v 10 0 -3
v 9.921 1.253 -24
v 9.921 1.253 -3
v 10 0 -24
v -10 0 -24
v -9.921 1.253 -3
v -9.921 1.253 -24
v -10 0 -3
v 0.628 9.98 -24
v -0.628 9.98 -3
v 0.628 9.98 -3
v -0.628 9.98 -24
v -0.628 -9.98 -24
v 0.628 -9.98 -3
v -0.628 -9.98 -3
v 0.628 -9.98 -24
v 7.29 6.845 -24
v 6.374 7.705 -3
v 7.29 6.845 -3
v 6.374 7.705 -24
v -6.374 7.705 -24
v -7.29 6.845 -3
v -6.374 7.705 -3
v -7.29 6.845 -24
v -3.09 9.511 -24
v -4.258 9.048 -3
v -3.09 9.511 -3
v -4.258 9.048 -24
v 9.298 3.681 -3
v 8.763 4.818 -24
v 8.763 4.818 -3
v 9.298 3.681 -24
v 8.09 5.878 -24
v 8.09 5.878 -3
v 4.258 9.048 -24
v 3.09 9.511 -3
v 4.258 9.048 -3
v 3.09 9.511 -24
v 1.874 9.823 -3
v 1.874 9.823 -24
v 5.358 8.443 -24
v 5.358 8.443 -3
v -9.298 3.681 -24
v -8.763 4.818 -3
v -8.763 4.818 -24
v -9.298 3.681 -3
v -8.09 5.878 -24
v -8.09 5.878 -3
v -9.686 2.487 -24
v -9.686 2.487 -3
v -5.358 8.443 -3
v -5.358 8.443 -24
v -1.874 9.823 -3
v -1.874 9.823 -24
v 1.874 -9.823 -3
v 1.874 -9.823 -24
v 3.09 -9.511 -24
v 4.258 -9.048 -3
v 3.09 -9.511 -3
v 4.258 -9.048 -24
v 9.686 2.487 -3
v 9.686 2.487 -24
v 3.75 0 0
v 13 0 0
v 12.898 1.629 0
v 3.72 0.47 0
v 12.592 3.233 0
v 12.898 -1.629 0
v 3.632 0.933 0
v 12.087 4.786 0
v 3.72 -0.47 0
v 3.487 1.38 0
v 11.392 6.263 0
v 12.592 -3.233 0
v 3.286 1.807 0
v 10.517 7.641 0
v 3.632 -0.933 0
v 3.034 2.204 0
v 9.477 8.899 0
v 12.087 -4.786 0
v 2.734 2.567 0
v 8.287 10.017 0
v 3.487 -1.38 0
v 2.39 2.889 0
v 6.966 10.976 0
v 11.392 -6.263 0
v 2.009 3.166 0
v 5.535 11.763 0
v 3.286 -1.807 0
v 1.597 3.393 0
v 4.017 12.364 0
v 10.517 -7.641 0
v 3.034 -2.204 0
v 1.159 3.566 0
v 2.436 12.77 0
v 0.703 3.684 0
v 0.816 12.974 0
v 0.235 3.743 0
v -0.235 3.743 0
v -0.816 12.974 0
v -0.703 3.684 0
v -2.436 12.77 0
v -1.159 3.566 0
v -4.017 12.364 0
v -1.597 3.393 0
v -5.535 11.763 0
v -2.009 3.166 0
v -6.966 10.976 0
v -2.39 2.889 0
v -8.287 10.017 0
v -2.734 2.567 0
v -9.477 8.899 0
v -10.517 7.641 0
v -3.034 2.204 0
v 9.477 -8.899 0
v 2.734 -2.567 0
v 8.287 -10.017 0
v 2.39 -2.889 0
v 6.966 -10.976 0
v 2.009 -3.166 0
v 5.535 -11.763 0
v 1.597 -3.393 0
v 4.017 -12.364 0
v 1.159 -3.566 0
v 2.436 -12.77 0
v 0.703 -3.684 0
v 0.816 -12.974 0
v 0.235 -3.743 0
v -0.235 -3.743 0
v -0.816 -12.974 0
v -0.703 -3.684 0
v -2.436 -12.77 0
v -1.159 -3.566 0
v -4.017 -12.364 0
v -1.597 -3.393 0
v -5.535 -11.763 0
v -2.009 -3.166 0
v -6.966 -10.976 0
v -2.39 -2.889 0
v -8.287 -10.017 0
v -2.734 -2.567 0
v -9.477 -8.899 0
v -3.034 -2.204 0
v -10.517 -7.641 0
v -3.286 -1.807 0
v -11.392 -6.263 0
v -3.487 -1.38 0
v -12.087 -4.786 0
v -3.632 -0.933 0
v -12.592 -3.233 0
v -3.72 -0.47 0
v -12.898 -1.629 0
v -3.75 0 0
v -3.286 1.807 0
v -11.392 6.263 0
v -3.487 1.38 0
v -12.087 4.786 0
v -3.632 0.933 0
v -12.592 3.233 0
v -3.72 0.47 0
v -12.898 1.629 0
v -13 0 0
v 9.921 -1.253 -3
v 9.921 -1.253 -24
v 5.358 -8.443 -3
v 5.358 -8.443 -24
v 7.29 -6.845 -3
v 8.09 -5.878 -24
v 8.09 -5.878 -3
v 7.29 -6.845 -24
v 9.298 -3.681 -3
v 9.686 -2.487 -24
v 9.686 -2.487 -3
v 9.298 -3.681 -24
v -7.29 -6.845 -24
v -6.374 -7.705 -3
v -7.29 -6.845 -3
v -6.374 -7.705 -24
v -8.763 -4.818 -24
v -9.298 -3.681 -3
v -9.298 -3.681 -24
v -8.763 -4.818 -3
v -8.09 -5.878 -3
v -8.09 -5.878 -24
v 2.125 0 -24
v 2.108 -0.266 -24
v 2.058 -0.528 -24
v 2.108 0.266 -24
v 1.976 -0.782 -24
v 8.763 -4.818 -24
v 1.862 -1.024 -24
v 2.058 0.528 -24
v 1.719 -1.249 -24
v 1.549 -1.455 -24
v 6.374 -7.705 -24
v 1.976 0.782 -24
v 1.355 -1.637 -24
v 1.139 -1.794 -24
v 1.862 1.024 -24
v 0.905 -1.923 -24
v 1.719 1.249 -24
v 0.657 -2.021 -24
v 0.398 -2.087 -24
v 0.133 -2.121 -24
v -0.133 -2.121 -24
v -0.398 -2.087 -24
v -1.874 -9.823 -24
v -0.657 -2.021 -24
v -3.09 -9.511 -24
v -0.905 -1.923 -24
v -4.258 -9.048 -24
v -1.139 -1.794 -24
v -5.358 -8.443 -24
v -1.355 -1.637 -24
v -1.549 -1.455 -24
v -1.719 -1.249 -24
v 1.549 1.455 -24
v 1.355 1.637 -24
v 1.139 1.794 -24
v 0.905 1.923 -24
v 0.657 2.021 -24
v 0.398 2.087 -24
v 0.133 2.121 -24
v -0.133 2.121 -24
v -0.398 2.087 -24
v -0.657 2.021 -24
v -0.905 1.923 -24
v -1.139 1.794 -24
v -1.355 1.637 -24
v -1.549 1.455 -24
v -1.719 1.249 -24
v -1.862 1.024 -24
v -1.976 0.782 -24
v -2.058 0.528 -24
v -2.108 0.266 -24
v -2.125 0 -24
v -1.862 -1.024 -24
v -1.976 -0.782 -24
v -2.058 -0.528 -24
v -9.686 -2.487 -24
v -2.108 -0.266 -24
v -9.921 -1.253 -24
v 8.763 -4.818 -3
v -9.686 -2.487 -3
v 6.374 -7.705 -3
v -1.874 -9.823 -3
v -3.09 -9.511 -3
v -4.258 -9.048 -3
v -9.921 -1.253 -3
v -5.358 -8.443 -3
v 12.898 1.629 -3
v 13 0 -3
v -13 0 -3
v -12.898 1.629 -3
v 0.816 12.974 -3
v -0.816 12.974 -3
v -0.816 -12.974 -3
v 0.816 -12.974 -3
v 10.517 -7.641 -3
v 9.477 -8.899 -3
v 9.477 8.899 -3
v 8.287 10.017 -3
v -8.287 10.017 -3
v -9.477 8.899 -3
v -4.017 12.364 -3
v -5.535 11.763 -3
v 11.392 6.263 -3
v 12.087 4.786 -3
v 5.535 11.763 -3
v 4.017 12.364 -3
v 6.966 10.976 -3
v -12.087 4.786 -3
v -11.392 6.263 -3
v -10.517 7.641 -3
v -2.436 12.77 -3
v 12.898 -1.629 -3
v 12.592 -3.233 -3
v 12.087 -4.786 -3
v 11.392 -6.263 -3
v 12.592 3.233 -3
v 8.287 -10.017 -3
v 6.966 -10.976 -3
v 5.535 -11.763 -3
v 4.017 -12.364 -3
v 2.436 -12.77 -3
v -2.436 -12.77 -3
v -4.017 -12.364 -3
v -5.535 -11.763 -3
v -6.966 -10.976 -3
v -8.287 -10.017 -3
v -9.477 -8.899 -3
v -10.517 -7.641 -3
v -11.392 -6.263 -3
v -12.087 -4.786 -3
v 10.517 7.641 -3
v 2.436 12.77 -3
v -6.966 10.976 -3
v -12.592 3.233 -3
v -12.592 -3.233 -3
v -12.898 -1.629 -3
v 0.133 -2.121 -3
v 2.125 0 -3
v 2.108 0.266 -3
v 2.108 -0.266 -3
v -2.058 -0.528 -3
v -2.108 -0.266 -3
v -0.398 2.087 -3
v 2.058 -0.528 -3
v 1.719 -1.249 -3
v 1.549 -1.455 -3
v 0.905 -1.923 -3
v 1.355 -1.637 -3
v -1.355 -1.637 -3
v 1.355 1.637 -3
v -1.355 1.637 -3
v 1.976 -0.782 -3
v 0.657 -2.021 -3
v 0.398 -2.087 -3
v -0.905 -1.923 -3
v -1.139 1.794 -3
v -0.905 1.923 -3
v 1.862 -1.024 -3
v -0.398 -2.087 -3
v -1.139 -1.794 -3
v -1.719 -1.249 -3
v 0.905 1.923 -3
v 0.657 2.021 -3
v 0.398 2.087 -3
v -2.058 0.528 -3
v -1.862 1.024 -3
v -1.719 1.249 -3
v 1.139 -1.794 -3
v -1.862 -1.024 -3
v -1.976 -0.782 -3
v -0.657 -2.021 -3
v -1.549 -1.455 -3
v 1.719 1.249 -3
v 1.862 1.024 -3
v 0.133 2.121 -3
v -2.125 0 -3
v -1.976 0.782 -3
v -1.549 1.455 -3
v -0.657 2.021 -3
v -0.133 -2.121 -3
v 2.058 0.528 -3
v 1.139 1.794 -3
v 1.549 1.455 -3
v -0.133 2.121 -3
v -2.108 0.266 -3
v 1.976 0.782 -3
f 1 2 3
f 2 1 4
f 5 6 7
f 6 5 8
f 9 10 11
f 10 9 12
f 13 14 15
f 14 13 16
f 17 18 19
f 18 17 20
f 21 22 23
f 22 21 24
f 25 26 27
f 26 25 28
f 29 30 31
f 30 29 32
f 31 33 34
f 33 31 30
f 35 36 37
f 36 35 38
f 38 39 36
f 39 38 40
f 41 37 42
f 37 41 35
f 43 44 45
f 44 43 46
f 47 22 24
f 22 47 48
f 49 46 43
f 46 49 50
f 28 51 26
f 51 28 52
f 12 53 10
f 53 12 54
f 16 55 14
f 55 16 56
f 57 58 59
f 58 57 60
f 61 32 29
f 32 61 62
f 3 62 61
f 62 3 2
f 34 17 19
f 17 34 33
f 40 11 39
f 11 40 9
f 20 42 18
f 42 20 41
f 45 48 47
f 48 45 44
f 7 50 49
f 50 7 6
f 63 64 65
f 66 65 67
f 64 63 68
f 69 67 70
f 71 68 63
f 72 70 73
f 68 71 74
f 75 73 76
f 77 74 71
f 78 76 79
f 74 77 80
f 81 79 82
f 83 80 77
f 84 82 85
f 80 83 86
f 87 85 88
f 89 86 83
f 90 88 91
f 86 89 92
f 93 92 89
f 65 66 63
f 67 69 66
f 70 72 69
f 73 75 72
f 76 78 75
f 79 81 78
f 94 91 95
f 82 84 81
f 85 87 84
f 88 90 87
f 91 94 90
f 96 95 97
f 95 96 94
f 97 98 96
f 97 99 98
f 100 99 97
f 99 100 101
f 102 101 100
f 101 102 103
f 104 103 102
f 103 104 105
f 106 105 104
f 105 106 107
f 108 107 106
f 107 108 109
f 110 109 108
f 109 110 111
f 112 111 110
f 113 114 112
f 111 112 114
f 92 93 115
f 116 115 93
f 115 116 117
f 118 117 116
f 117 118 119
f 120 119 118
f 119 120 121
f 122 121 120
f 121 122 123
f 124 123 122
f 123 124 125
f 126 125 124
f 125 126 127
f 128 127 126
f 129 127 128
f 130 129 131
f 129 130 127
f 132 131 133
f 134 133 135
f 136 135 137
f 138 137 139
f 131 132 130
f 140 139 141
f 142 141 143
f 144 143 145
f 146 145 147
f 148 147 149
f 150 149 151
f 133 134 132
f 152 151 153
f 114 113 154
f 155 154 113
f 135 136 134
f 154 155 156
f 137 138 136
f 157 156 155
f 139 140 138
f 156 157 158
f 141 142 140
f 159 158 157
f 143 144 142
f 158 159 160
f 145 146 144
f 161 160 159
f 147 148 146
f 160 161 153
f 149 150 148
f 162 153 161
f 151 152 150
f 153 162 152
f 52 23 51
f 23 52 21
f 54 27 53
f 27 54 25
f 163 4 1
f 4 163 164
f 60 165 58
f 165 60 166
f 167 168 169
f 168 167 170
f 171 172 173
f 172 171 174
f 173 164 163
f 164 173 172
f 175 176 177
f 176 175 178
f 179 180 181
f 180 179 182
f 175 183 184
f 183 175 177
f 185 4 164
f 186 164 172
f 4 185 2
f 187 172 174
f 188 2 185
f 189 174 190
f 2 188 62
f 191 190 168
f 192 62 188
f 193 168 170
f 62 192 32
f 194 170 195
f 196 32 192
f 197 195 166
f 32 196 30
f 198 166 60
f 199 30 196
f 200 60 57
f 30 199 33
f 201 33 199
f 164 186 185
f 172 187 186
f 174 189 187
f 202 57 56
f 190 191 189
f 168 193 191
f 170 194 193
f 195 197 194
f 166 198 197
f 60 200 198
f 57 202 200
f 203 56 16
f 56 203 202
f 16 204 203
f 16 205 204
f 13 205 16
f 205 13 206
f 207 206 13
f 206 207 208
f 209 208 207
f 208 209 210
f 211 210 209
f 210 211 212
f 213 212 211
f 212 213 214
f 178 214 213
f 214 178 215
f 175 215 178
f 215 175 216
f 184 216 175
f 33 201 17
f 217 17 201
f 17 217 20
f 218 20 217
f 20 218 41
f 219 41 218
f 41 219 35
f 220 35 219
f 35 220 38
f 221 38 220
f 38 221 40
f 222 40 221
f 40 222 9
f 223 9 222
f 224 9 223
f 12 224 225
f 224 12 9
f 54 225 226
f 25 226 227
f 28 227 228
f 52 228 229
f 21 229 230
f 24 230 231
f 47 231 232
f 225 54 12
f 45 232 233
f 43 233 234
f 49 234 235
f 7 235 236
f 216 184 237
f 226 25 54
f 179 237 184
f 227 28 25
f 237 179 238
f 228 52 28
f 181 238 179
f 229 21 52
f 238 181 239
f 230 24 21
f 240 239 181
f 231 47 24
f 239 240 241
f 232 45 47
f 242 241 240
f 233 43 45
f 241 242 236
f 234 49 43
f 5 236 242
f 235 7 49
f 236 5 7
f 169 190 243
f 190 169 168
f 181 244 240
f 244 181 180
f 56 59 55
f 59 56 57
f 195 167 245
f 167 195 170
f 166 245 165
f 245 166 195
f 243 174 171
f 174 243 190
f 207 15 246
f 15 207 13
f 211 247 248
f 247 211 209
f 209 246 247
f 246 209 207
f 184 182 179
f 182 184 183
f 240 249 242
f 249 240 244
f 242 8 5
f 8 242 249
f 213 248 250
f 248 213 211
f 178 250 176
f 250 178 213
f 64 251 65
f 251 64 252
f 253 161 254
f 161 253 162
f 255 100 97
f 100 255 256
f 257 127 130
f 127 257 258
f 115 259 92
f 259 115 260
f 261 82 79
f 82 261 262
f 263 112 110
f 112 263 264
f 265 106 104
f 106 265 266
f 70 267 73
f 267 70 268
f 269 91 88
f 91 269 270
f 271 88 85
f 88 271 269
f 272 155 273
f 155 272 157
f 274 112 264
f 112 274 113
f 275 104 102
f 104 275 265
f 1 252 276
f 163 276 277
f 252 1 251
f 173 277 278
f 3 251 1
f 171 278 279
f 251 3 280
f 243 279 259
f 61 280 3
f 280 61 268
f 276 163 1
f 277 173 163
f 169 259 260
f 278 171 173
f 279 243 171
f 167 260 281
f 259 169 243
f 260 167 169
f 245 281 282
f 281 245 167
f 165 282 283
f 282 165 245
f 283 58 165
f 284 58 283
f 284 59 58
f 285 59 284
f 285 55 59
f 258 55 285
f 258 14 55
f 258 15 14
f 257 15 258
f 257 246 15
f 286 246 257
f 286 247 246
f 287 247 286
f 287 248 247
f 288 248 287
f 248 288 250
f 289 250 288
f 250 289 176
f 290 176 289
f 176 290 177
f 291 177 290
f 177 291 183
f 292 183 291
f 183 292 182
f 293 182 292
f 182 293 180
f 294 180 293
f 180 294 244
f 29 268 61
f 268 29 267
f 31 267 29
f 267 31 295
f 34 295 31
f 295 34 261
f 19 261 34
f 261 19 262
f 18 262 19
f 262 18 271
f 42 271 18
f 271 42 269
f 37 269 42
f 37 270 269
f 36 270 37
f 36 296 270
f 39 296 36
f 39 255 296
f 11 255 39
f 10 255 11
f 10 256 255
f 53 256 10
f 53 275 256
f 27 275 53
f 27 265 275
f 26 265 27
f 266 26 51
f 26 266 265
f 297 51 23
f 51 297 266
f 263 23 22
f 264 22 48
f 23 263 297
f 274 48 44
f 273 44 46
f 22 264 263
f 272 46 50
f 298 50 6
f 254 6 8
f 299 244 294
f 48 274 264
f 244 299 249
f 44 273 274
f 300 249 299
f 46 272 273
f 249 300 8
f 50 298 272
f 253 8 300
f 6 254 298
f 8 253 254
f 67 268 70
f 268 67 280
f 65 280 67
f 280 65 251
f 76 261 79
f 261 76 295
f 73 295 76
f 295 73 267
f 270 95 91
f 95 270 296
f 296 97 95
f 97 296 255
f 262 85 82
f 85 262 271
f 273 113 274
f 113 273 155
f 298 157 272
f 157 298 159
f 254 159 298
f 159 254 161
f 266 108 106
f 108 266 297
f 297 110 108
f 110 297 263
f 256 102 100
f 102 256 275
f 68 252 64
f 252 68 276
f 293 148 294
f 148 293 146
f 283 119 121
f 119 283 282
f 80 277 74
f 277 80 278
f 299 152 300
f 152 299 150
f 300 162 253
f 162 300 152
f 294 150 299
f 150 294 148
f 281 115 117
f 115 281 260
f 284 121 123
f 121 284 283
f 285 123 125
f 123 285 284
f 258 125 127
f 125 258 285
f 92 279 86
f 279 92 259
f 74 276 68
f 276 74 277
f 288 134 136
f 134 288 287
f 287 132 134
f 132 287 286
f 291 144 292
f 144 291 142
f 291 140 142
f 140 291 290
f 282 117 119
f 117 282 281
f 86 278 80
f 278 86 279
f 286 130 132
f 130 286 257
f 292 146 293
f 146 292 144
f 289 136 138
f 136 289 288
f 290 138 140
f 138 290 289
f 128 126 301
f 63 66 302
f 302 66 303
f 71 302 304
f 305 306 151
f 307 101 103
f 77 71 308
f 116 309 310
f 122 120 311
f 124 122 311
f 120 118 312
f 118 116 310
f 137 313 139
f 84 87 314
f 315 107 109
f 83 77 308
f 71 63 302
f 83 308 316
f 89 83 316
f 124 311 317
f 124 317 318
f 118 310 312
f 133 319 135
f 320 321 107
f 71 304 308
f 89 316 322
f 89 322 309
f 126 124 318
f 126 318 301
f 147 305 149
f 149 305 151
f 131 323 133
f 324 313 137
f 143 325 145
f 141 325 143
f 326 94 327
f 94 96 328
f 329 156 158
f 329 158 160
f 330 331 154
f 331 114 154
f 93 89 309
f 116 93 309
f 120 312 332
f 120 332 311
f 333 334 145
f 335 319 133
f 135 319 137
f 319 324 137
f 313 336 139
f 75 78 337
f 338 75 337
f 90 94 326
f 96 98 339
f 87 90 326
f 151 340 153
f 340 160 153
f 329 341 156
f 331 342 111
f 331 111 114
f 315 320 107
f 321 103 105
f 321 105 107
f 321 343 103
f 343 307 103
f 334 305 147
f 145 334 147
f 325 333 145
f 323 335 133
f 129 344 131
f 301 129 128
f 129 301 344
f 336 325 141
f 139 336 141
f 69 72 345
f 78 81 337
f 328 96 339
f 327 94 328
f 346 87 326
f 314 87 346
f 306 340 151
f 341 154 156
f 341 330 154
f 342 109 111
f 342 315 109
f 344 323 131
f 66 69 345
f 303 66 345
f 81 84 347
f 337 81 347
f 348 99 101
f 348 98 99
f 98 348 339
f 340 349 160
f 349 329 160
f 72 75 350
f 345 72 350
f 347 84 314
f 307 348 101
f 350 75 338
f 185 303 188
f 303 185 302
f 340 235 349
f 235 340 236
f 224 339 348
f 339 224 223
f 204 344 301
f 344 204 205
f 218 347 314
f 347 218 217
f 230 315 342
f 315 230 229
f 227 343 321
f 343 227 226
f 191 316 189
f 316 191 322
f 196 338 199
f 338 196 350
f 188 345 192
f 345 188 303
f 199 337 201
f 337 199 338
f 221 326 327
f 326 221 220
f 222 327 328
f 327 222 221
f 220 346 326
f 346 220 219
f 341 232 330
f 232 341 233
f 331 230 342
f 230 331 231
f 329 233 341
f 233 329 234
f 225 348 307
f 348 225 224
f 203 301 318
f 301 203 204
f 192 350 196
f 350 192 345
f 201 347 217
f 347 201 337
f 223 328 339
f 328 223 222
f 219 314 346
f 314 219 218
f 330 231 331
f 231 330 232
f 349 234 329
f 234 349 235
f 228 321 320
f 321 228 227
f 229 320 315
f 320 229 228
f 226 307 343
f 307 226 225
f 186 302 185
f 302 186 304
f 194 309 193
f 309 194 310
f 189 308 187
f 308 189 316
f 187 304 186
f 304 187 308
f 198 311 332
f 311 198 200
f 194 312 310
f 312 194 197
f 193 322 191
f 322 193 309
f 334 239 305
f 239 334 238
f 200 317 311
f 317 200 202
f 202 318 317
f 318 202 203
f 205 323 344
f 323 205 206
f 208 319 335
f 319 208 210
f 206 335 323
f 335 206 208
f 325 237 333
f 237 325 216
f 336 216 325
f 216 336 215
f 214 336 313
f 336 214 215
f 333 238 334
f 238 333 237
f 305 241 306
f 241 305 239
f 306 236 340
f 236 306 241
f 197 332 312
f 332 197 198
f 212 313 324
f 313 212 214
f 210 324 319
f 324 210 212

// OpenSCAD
$fn = 50;


difference() {
	union() {
		translate(v = [0, 0, -24.0000000000]) {
			cylinder(h = 24, r = 10.0000000000);
		}
		translate(v = [0, 0, -3.0000000000]) {
			cylinder(h = 3, r = 13.0000000000);
		}
	}
	union() {
		translate(v = [0, 0, 0]) {
			rotate(a = [0, 0, 0]) {
				difference() {
					union() {
						#translate(v = [0, 0, -24.0000000000]) {
							cylinder(h = 24, r = 2.0000000000);
						}
						#translate(v = [0, 0, -3]) {
							cylinder(h = 3, r1 = 2.1250000000, r2 = 3.7500000000);
						}
						#translate(v = [0, 0, -24.0000000000]) {
							cylinder(h = 24, r = 2.1250000000);
						}
						#translate(v = [0, 0, -24.0000000000]) {
							cylinder(h = 24, r = 2.0000000000);
						}
					}
					union();
				}
			}
		}
	}
}
